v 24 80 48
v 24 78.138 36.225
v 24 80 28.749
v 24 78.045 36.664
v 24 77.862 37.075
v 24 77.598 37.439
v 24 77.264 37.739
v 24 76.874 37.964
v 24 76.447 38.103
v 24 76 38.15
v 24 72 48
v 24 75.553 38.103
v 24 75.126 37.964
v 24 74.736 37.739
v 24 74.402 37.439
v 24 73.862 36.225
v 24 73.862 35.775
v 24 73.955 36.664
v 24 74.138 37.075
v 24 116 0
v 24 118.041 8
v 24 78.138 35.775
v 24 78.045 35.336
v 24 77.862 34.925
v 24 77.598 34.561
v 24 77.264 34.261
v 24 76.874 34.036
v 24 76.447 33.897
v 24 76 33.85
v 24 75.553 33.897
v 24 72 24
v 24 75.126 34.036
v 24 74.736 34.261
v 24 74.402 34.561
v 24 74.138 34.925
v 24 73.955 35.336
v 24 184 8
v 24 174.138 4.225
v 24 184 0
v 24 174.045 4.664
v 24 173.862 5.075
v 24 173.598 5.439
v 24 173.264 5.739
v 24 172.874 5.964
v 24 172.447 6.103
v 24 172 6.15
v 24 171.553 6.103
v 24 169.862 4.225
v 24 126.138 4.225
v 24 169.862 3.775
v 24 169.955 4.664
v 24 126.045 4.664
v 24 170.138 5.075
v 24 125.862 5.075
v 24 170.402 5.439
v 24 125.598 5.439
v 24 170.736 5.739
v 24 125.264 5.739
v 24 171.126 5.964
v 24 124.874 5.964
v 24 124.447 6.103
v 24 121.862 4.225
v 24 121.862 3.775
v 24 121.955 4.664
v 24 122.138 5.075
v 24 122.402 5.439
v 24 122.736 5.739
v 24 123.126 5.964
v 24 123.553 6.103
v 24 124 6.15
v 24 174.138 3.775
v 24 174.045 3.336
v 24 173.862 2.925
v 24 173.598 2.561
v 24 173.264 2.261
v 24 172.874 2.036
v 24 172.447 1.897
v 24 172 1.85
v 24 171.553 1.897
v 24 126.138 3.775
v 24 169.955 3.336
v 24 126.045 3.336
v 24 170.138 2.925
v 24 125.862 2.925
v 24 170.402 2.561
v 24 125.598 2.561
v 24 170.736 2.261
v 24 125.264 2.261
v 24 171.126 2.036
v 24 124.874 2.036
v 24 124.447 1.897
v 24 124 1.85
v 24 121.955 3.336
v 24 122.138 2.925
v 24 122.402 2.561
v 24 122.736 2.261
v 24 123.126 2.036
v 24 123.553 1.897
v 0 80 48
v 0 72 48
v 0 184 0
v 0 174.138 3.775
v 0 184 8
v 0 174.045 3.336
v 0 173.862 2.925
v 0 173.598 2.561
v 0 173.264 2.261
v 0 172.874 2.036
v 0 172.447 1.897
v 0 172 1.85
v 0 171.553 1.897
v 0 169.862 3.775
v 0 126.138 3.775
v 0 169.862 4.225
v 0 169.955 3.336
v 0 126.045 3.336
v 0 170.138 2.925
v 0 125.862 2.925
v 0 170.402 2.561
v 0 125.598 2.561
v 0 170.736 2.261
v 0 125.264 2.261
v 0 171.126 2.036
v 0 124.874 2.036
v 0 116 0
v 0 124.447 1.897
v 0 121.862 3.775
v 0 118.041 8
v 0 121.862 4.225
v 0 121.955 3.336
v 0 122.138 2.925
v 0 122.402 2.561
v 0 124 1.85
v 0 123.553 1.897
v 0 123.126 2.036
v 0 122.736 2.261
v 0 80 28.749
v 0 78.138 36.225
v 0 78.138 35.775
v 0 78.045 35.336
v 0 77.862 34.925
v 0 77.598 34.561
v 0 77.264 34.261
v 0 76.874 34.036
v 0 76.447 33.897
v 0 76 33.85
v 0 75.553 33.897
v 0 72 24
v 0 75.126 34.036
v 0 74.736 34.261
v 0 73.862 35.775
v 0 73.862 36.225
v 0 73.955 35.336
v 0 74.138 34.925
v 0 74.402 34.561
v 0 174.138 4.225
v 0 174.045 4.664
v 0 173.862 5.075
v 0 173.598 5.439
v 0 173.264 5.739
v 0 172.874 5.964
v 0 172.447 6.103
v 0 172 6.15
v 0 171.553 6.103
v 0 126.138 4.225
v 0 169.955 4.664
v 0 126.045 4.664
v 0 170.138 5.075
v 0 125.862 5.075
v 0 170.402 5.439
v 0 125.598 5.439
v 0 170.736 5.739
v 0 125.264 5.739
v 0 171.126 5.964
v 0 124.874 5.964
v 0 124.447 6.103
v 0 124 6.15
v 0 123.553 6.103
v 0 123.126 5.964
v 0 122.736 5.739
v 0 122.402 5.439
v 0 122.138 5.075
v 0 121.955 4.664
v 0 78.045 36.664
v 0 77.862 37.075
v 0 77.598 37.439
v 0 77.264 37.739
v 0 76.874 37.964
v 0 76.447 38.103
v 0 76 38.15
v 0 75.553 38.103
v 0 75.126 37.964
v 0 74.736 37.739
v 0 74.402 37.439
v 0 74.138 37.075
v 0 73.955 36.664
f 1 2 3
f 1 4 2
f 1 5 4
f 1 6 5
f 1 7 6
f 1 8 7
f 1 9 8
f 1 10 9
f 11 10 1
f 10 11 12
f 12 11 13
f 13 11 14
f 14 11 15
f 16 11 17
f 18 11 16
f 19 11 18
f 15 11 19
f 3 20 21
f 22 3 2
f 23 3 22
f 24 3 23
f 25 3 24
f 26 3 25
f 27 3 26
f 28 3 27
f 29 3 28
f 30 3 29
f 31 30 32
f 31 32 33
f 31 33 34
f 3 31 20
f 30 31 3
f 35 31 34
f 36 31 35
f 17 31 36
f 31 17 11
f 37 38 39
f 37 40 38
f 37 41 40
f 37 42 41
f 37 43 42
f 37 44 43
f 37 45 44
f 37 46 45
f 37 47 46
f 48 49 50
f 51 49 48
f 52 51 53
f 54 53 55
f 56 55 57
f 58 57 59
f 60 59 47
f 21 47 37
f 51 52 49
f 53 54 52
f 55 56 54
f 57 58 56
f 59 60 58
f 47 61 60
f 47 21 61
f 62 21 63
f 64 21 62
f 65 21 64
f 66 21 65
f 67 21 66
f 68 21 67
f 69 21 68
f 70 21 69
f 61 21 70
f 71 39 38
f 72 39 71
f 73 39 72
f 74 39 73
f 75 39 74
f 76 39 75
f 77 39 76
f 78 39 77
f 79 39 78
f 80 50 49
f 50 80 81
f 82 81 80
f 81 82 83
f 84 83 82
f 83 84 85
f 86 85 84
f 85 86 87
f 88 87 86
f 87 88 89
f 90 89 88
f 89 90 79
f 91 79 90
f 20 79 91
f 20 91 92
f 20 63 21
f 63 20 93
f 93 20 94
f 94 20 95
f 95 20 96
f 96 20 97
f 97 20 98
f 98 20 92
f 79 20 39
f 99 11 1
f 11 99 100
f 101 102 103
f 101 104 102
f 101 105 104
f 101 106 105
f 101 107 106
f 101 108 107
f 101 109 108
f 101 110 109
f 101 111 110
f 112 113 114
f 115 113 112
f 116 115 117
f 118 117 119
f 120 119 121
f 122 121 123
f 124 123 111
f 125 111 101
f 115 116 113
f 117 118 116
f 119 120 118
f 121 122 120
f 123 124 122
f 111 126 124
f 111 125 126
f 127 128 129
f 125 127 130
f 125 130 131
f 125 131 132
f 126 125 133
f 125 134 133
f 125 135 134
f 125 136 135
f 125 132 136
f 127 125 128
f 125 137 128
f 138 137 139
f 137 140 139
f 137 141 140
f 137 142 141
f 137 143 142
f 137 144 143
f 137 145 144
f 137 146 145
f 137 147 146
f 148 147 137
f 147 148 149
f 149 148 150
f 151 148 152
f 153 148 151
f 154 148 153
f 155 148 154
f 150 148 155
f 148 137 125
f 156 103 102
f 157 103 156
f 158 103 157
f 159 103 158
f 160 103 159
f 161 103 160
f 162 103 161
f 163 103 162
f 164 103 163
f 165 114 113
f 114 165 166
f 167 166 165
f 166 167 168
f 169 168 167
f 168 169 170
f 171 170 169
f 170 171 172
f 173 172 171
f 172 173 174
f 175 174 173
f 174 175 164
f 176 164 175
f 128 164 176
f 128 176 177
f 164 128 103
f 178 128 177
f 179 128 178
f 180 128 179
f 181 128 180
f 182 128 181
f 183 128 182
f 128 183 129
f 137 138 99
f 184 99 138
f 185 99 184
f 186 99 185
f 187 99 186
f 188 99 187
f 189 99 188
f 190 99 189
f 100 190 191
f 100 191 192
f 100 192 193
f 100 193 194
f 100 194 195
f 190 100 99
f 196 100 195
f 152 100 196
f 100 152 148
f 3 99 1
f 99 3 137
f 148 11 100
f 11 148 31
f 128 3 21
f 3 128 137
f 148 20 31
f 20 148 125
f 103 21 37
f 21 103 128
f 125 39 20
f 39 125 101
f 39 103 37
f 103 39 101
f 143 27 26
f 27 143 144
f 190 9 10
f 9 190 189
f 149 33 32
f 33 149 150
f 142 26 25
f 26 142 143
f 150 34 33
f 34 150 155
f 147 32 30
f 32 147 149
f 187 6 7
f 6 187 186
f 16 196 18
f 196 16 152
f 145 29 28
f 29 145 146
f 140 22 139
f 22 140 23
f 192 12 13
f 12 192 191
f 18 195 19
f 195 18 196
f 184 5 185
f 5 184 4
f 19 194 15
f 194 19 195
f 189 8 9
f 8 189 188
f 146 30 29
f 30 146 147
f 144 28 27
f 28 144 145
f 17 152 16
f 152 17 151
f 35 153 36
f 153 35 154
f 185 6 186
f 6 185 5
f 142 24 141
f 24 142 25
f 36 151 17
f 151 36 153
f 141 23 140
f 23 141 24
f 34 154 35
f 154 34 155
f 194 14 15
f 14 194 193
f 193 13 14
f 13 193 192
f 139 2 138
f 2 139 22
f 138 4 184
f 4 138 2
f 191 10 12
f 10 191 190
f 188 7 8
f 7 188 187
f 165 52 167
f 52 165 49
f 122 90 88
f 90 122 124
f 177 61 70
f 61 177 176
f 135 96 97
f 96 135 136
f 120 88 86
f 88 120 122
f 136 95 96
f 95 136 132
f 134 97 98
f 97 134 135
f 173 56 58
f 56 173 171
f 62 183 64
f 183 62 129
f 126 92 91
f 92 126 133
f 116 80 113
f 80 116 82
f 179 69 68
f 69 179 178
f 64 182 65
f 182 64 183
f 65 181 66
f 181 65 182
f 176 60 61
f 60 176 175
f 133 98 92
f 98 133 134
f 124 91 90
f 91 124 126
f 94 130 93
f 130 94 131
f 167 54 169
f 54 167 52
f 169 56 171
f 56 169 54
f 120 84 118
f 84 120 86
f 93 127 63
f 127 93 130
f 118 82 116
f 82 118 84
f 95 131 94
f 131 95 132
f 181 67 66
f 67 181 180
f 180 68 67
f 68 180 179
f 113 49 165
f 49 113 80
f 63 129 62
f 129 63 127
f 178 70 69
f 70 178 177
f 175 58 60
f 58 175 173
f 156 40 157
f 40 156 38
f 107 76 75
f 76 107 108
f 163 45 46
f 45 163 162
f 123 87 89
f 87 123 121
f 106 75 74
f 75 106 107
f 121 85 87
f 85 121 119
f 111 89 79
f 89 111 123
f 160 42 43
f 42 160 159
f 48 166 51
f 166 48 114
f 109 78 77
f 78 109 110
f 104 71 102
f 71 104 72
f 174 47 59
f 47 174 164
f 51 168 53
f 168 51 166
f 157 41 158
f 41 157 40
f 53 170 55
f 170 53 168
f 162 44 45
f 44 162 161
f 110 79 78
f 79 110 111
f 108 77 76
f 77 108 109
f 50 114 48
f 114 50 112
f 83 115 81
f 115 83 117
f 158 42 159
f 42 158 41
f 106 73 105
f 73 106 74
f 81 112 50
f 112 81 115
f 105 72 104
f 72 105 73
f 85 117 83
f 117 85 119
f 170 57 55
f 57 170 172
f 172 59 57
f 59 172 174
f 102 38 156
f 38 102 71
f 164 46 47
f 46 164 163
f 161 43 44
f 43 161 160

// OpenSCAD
difference() {
union() {
    // vertical piece
    translate([0,72,24])
    cube([24,8,24]);
    
    // angled piece
    translate([0,72,24])
    rotate([331.39,0,0])
    cube([24,50.12,8]);
    
    // horizontal piece
    translate([0,116,0])
    cube([24,68,8]);
}
    // left hole
    translate([-4,76,36])
    rotate([0,90,0])
    cylinder(r=2.15,90, $fn=30);

    // middle hole
    translate([-4,124,4])
    rotate([0,90,0])
    cylinder(r=2.15,60, $fn=30);

    // right hole
    translate([-4,172,4])
    rotate([0,90,0])
    cylinder(r=2.15,60, $fn=30);
}
